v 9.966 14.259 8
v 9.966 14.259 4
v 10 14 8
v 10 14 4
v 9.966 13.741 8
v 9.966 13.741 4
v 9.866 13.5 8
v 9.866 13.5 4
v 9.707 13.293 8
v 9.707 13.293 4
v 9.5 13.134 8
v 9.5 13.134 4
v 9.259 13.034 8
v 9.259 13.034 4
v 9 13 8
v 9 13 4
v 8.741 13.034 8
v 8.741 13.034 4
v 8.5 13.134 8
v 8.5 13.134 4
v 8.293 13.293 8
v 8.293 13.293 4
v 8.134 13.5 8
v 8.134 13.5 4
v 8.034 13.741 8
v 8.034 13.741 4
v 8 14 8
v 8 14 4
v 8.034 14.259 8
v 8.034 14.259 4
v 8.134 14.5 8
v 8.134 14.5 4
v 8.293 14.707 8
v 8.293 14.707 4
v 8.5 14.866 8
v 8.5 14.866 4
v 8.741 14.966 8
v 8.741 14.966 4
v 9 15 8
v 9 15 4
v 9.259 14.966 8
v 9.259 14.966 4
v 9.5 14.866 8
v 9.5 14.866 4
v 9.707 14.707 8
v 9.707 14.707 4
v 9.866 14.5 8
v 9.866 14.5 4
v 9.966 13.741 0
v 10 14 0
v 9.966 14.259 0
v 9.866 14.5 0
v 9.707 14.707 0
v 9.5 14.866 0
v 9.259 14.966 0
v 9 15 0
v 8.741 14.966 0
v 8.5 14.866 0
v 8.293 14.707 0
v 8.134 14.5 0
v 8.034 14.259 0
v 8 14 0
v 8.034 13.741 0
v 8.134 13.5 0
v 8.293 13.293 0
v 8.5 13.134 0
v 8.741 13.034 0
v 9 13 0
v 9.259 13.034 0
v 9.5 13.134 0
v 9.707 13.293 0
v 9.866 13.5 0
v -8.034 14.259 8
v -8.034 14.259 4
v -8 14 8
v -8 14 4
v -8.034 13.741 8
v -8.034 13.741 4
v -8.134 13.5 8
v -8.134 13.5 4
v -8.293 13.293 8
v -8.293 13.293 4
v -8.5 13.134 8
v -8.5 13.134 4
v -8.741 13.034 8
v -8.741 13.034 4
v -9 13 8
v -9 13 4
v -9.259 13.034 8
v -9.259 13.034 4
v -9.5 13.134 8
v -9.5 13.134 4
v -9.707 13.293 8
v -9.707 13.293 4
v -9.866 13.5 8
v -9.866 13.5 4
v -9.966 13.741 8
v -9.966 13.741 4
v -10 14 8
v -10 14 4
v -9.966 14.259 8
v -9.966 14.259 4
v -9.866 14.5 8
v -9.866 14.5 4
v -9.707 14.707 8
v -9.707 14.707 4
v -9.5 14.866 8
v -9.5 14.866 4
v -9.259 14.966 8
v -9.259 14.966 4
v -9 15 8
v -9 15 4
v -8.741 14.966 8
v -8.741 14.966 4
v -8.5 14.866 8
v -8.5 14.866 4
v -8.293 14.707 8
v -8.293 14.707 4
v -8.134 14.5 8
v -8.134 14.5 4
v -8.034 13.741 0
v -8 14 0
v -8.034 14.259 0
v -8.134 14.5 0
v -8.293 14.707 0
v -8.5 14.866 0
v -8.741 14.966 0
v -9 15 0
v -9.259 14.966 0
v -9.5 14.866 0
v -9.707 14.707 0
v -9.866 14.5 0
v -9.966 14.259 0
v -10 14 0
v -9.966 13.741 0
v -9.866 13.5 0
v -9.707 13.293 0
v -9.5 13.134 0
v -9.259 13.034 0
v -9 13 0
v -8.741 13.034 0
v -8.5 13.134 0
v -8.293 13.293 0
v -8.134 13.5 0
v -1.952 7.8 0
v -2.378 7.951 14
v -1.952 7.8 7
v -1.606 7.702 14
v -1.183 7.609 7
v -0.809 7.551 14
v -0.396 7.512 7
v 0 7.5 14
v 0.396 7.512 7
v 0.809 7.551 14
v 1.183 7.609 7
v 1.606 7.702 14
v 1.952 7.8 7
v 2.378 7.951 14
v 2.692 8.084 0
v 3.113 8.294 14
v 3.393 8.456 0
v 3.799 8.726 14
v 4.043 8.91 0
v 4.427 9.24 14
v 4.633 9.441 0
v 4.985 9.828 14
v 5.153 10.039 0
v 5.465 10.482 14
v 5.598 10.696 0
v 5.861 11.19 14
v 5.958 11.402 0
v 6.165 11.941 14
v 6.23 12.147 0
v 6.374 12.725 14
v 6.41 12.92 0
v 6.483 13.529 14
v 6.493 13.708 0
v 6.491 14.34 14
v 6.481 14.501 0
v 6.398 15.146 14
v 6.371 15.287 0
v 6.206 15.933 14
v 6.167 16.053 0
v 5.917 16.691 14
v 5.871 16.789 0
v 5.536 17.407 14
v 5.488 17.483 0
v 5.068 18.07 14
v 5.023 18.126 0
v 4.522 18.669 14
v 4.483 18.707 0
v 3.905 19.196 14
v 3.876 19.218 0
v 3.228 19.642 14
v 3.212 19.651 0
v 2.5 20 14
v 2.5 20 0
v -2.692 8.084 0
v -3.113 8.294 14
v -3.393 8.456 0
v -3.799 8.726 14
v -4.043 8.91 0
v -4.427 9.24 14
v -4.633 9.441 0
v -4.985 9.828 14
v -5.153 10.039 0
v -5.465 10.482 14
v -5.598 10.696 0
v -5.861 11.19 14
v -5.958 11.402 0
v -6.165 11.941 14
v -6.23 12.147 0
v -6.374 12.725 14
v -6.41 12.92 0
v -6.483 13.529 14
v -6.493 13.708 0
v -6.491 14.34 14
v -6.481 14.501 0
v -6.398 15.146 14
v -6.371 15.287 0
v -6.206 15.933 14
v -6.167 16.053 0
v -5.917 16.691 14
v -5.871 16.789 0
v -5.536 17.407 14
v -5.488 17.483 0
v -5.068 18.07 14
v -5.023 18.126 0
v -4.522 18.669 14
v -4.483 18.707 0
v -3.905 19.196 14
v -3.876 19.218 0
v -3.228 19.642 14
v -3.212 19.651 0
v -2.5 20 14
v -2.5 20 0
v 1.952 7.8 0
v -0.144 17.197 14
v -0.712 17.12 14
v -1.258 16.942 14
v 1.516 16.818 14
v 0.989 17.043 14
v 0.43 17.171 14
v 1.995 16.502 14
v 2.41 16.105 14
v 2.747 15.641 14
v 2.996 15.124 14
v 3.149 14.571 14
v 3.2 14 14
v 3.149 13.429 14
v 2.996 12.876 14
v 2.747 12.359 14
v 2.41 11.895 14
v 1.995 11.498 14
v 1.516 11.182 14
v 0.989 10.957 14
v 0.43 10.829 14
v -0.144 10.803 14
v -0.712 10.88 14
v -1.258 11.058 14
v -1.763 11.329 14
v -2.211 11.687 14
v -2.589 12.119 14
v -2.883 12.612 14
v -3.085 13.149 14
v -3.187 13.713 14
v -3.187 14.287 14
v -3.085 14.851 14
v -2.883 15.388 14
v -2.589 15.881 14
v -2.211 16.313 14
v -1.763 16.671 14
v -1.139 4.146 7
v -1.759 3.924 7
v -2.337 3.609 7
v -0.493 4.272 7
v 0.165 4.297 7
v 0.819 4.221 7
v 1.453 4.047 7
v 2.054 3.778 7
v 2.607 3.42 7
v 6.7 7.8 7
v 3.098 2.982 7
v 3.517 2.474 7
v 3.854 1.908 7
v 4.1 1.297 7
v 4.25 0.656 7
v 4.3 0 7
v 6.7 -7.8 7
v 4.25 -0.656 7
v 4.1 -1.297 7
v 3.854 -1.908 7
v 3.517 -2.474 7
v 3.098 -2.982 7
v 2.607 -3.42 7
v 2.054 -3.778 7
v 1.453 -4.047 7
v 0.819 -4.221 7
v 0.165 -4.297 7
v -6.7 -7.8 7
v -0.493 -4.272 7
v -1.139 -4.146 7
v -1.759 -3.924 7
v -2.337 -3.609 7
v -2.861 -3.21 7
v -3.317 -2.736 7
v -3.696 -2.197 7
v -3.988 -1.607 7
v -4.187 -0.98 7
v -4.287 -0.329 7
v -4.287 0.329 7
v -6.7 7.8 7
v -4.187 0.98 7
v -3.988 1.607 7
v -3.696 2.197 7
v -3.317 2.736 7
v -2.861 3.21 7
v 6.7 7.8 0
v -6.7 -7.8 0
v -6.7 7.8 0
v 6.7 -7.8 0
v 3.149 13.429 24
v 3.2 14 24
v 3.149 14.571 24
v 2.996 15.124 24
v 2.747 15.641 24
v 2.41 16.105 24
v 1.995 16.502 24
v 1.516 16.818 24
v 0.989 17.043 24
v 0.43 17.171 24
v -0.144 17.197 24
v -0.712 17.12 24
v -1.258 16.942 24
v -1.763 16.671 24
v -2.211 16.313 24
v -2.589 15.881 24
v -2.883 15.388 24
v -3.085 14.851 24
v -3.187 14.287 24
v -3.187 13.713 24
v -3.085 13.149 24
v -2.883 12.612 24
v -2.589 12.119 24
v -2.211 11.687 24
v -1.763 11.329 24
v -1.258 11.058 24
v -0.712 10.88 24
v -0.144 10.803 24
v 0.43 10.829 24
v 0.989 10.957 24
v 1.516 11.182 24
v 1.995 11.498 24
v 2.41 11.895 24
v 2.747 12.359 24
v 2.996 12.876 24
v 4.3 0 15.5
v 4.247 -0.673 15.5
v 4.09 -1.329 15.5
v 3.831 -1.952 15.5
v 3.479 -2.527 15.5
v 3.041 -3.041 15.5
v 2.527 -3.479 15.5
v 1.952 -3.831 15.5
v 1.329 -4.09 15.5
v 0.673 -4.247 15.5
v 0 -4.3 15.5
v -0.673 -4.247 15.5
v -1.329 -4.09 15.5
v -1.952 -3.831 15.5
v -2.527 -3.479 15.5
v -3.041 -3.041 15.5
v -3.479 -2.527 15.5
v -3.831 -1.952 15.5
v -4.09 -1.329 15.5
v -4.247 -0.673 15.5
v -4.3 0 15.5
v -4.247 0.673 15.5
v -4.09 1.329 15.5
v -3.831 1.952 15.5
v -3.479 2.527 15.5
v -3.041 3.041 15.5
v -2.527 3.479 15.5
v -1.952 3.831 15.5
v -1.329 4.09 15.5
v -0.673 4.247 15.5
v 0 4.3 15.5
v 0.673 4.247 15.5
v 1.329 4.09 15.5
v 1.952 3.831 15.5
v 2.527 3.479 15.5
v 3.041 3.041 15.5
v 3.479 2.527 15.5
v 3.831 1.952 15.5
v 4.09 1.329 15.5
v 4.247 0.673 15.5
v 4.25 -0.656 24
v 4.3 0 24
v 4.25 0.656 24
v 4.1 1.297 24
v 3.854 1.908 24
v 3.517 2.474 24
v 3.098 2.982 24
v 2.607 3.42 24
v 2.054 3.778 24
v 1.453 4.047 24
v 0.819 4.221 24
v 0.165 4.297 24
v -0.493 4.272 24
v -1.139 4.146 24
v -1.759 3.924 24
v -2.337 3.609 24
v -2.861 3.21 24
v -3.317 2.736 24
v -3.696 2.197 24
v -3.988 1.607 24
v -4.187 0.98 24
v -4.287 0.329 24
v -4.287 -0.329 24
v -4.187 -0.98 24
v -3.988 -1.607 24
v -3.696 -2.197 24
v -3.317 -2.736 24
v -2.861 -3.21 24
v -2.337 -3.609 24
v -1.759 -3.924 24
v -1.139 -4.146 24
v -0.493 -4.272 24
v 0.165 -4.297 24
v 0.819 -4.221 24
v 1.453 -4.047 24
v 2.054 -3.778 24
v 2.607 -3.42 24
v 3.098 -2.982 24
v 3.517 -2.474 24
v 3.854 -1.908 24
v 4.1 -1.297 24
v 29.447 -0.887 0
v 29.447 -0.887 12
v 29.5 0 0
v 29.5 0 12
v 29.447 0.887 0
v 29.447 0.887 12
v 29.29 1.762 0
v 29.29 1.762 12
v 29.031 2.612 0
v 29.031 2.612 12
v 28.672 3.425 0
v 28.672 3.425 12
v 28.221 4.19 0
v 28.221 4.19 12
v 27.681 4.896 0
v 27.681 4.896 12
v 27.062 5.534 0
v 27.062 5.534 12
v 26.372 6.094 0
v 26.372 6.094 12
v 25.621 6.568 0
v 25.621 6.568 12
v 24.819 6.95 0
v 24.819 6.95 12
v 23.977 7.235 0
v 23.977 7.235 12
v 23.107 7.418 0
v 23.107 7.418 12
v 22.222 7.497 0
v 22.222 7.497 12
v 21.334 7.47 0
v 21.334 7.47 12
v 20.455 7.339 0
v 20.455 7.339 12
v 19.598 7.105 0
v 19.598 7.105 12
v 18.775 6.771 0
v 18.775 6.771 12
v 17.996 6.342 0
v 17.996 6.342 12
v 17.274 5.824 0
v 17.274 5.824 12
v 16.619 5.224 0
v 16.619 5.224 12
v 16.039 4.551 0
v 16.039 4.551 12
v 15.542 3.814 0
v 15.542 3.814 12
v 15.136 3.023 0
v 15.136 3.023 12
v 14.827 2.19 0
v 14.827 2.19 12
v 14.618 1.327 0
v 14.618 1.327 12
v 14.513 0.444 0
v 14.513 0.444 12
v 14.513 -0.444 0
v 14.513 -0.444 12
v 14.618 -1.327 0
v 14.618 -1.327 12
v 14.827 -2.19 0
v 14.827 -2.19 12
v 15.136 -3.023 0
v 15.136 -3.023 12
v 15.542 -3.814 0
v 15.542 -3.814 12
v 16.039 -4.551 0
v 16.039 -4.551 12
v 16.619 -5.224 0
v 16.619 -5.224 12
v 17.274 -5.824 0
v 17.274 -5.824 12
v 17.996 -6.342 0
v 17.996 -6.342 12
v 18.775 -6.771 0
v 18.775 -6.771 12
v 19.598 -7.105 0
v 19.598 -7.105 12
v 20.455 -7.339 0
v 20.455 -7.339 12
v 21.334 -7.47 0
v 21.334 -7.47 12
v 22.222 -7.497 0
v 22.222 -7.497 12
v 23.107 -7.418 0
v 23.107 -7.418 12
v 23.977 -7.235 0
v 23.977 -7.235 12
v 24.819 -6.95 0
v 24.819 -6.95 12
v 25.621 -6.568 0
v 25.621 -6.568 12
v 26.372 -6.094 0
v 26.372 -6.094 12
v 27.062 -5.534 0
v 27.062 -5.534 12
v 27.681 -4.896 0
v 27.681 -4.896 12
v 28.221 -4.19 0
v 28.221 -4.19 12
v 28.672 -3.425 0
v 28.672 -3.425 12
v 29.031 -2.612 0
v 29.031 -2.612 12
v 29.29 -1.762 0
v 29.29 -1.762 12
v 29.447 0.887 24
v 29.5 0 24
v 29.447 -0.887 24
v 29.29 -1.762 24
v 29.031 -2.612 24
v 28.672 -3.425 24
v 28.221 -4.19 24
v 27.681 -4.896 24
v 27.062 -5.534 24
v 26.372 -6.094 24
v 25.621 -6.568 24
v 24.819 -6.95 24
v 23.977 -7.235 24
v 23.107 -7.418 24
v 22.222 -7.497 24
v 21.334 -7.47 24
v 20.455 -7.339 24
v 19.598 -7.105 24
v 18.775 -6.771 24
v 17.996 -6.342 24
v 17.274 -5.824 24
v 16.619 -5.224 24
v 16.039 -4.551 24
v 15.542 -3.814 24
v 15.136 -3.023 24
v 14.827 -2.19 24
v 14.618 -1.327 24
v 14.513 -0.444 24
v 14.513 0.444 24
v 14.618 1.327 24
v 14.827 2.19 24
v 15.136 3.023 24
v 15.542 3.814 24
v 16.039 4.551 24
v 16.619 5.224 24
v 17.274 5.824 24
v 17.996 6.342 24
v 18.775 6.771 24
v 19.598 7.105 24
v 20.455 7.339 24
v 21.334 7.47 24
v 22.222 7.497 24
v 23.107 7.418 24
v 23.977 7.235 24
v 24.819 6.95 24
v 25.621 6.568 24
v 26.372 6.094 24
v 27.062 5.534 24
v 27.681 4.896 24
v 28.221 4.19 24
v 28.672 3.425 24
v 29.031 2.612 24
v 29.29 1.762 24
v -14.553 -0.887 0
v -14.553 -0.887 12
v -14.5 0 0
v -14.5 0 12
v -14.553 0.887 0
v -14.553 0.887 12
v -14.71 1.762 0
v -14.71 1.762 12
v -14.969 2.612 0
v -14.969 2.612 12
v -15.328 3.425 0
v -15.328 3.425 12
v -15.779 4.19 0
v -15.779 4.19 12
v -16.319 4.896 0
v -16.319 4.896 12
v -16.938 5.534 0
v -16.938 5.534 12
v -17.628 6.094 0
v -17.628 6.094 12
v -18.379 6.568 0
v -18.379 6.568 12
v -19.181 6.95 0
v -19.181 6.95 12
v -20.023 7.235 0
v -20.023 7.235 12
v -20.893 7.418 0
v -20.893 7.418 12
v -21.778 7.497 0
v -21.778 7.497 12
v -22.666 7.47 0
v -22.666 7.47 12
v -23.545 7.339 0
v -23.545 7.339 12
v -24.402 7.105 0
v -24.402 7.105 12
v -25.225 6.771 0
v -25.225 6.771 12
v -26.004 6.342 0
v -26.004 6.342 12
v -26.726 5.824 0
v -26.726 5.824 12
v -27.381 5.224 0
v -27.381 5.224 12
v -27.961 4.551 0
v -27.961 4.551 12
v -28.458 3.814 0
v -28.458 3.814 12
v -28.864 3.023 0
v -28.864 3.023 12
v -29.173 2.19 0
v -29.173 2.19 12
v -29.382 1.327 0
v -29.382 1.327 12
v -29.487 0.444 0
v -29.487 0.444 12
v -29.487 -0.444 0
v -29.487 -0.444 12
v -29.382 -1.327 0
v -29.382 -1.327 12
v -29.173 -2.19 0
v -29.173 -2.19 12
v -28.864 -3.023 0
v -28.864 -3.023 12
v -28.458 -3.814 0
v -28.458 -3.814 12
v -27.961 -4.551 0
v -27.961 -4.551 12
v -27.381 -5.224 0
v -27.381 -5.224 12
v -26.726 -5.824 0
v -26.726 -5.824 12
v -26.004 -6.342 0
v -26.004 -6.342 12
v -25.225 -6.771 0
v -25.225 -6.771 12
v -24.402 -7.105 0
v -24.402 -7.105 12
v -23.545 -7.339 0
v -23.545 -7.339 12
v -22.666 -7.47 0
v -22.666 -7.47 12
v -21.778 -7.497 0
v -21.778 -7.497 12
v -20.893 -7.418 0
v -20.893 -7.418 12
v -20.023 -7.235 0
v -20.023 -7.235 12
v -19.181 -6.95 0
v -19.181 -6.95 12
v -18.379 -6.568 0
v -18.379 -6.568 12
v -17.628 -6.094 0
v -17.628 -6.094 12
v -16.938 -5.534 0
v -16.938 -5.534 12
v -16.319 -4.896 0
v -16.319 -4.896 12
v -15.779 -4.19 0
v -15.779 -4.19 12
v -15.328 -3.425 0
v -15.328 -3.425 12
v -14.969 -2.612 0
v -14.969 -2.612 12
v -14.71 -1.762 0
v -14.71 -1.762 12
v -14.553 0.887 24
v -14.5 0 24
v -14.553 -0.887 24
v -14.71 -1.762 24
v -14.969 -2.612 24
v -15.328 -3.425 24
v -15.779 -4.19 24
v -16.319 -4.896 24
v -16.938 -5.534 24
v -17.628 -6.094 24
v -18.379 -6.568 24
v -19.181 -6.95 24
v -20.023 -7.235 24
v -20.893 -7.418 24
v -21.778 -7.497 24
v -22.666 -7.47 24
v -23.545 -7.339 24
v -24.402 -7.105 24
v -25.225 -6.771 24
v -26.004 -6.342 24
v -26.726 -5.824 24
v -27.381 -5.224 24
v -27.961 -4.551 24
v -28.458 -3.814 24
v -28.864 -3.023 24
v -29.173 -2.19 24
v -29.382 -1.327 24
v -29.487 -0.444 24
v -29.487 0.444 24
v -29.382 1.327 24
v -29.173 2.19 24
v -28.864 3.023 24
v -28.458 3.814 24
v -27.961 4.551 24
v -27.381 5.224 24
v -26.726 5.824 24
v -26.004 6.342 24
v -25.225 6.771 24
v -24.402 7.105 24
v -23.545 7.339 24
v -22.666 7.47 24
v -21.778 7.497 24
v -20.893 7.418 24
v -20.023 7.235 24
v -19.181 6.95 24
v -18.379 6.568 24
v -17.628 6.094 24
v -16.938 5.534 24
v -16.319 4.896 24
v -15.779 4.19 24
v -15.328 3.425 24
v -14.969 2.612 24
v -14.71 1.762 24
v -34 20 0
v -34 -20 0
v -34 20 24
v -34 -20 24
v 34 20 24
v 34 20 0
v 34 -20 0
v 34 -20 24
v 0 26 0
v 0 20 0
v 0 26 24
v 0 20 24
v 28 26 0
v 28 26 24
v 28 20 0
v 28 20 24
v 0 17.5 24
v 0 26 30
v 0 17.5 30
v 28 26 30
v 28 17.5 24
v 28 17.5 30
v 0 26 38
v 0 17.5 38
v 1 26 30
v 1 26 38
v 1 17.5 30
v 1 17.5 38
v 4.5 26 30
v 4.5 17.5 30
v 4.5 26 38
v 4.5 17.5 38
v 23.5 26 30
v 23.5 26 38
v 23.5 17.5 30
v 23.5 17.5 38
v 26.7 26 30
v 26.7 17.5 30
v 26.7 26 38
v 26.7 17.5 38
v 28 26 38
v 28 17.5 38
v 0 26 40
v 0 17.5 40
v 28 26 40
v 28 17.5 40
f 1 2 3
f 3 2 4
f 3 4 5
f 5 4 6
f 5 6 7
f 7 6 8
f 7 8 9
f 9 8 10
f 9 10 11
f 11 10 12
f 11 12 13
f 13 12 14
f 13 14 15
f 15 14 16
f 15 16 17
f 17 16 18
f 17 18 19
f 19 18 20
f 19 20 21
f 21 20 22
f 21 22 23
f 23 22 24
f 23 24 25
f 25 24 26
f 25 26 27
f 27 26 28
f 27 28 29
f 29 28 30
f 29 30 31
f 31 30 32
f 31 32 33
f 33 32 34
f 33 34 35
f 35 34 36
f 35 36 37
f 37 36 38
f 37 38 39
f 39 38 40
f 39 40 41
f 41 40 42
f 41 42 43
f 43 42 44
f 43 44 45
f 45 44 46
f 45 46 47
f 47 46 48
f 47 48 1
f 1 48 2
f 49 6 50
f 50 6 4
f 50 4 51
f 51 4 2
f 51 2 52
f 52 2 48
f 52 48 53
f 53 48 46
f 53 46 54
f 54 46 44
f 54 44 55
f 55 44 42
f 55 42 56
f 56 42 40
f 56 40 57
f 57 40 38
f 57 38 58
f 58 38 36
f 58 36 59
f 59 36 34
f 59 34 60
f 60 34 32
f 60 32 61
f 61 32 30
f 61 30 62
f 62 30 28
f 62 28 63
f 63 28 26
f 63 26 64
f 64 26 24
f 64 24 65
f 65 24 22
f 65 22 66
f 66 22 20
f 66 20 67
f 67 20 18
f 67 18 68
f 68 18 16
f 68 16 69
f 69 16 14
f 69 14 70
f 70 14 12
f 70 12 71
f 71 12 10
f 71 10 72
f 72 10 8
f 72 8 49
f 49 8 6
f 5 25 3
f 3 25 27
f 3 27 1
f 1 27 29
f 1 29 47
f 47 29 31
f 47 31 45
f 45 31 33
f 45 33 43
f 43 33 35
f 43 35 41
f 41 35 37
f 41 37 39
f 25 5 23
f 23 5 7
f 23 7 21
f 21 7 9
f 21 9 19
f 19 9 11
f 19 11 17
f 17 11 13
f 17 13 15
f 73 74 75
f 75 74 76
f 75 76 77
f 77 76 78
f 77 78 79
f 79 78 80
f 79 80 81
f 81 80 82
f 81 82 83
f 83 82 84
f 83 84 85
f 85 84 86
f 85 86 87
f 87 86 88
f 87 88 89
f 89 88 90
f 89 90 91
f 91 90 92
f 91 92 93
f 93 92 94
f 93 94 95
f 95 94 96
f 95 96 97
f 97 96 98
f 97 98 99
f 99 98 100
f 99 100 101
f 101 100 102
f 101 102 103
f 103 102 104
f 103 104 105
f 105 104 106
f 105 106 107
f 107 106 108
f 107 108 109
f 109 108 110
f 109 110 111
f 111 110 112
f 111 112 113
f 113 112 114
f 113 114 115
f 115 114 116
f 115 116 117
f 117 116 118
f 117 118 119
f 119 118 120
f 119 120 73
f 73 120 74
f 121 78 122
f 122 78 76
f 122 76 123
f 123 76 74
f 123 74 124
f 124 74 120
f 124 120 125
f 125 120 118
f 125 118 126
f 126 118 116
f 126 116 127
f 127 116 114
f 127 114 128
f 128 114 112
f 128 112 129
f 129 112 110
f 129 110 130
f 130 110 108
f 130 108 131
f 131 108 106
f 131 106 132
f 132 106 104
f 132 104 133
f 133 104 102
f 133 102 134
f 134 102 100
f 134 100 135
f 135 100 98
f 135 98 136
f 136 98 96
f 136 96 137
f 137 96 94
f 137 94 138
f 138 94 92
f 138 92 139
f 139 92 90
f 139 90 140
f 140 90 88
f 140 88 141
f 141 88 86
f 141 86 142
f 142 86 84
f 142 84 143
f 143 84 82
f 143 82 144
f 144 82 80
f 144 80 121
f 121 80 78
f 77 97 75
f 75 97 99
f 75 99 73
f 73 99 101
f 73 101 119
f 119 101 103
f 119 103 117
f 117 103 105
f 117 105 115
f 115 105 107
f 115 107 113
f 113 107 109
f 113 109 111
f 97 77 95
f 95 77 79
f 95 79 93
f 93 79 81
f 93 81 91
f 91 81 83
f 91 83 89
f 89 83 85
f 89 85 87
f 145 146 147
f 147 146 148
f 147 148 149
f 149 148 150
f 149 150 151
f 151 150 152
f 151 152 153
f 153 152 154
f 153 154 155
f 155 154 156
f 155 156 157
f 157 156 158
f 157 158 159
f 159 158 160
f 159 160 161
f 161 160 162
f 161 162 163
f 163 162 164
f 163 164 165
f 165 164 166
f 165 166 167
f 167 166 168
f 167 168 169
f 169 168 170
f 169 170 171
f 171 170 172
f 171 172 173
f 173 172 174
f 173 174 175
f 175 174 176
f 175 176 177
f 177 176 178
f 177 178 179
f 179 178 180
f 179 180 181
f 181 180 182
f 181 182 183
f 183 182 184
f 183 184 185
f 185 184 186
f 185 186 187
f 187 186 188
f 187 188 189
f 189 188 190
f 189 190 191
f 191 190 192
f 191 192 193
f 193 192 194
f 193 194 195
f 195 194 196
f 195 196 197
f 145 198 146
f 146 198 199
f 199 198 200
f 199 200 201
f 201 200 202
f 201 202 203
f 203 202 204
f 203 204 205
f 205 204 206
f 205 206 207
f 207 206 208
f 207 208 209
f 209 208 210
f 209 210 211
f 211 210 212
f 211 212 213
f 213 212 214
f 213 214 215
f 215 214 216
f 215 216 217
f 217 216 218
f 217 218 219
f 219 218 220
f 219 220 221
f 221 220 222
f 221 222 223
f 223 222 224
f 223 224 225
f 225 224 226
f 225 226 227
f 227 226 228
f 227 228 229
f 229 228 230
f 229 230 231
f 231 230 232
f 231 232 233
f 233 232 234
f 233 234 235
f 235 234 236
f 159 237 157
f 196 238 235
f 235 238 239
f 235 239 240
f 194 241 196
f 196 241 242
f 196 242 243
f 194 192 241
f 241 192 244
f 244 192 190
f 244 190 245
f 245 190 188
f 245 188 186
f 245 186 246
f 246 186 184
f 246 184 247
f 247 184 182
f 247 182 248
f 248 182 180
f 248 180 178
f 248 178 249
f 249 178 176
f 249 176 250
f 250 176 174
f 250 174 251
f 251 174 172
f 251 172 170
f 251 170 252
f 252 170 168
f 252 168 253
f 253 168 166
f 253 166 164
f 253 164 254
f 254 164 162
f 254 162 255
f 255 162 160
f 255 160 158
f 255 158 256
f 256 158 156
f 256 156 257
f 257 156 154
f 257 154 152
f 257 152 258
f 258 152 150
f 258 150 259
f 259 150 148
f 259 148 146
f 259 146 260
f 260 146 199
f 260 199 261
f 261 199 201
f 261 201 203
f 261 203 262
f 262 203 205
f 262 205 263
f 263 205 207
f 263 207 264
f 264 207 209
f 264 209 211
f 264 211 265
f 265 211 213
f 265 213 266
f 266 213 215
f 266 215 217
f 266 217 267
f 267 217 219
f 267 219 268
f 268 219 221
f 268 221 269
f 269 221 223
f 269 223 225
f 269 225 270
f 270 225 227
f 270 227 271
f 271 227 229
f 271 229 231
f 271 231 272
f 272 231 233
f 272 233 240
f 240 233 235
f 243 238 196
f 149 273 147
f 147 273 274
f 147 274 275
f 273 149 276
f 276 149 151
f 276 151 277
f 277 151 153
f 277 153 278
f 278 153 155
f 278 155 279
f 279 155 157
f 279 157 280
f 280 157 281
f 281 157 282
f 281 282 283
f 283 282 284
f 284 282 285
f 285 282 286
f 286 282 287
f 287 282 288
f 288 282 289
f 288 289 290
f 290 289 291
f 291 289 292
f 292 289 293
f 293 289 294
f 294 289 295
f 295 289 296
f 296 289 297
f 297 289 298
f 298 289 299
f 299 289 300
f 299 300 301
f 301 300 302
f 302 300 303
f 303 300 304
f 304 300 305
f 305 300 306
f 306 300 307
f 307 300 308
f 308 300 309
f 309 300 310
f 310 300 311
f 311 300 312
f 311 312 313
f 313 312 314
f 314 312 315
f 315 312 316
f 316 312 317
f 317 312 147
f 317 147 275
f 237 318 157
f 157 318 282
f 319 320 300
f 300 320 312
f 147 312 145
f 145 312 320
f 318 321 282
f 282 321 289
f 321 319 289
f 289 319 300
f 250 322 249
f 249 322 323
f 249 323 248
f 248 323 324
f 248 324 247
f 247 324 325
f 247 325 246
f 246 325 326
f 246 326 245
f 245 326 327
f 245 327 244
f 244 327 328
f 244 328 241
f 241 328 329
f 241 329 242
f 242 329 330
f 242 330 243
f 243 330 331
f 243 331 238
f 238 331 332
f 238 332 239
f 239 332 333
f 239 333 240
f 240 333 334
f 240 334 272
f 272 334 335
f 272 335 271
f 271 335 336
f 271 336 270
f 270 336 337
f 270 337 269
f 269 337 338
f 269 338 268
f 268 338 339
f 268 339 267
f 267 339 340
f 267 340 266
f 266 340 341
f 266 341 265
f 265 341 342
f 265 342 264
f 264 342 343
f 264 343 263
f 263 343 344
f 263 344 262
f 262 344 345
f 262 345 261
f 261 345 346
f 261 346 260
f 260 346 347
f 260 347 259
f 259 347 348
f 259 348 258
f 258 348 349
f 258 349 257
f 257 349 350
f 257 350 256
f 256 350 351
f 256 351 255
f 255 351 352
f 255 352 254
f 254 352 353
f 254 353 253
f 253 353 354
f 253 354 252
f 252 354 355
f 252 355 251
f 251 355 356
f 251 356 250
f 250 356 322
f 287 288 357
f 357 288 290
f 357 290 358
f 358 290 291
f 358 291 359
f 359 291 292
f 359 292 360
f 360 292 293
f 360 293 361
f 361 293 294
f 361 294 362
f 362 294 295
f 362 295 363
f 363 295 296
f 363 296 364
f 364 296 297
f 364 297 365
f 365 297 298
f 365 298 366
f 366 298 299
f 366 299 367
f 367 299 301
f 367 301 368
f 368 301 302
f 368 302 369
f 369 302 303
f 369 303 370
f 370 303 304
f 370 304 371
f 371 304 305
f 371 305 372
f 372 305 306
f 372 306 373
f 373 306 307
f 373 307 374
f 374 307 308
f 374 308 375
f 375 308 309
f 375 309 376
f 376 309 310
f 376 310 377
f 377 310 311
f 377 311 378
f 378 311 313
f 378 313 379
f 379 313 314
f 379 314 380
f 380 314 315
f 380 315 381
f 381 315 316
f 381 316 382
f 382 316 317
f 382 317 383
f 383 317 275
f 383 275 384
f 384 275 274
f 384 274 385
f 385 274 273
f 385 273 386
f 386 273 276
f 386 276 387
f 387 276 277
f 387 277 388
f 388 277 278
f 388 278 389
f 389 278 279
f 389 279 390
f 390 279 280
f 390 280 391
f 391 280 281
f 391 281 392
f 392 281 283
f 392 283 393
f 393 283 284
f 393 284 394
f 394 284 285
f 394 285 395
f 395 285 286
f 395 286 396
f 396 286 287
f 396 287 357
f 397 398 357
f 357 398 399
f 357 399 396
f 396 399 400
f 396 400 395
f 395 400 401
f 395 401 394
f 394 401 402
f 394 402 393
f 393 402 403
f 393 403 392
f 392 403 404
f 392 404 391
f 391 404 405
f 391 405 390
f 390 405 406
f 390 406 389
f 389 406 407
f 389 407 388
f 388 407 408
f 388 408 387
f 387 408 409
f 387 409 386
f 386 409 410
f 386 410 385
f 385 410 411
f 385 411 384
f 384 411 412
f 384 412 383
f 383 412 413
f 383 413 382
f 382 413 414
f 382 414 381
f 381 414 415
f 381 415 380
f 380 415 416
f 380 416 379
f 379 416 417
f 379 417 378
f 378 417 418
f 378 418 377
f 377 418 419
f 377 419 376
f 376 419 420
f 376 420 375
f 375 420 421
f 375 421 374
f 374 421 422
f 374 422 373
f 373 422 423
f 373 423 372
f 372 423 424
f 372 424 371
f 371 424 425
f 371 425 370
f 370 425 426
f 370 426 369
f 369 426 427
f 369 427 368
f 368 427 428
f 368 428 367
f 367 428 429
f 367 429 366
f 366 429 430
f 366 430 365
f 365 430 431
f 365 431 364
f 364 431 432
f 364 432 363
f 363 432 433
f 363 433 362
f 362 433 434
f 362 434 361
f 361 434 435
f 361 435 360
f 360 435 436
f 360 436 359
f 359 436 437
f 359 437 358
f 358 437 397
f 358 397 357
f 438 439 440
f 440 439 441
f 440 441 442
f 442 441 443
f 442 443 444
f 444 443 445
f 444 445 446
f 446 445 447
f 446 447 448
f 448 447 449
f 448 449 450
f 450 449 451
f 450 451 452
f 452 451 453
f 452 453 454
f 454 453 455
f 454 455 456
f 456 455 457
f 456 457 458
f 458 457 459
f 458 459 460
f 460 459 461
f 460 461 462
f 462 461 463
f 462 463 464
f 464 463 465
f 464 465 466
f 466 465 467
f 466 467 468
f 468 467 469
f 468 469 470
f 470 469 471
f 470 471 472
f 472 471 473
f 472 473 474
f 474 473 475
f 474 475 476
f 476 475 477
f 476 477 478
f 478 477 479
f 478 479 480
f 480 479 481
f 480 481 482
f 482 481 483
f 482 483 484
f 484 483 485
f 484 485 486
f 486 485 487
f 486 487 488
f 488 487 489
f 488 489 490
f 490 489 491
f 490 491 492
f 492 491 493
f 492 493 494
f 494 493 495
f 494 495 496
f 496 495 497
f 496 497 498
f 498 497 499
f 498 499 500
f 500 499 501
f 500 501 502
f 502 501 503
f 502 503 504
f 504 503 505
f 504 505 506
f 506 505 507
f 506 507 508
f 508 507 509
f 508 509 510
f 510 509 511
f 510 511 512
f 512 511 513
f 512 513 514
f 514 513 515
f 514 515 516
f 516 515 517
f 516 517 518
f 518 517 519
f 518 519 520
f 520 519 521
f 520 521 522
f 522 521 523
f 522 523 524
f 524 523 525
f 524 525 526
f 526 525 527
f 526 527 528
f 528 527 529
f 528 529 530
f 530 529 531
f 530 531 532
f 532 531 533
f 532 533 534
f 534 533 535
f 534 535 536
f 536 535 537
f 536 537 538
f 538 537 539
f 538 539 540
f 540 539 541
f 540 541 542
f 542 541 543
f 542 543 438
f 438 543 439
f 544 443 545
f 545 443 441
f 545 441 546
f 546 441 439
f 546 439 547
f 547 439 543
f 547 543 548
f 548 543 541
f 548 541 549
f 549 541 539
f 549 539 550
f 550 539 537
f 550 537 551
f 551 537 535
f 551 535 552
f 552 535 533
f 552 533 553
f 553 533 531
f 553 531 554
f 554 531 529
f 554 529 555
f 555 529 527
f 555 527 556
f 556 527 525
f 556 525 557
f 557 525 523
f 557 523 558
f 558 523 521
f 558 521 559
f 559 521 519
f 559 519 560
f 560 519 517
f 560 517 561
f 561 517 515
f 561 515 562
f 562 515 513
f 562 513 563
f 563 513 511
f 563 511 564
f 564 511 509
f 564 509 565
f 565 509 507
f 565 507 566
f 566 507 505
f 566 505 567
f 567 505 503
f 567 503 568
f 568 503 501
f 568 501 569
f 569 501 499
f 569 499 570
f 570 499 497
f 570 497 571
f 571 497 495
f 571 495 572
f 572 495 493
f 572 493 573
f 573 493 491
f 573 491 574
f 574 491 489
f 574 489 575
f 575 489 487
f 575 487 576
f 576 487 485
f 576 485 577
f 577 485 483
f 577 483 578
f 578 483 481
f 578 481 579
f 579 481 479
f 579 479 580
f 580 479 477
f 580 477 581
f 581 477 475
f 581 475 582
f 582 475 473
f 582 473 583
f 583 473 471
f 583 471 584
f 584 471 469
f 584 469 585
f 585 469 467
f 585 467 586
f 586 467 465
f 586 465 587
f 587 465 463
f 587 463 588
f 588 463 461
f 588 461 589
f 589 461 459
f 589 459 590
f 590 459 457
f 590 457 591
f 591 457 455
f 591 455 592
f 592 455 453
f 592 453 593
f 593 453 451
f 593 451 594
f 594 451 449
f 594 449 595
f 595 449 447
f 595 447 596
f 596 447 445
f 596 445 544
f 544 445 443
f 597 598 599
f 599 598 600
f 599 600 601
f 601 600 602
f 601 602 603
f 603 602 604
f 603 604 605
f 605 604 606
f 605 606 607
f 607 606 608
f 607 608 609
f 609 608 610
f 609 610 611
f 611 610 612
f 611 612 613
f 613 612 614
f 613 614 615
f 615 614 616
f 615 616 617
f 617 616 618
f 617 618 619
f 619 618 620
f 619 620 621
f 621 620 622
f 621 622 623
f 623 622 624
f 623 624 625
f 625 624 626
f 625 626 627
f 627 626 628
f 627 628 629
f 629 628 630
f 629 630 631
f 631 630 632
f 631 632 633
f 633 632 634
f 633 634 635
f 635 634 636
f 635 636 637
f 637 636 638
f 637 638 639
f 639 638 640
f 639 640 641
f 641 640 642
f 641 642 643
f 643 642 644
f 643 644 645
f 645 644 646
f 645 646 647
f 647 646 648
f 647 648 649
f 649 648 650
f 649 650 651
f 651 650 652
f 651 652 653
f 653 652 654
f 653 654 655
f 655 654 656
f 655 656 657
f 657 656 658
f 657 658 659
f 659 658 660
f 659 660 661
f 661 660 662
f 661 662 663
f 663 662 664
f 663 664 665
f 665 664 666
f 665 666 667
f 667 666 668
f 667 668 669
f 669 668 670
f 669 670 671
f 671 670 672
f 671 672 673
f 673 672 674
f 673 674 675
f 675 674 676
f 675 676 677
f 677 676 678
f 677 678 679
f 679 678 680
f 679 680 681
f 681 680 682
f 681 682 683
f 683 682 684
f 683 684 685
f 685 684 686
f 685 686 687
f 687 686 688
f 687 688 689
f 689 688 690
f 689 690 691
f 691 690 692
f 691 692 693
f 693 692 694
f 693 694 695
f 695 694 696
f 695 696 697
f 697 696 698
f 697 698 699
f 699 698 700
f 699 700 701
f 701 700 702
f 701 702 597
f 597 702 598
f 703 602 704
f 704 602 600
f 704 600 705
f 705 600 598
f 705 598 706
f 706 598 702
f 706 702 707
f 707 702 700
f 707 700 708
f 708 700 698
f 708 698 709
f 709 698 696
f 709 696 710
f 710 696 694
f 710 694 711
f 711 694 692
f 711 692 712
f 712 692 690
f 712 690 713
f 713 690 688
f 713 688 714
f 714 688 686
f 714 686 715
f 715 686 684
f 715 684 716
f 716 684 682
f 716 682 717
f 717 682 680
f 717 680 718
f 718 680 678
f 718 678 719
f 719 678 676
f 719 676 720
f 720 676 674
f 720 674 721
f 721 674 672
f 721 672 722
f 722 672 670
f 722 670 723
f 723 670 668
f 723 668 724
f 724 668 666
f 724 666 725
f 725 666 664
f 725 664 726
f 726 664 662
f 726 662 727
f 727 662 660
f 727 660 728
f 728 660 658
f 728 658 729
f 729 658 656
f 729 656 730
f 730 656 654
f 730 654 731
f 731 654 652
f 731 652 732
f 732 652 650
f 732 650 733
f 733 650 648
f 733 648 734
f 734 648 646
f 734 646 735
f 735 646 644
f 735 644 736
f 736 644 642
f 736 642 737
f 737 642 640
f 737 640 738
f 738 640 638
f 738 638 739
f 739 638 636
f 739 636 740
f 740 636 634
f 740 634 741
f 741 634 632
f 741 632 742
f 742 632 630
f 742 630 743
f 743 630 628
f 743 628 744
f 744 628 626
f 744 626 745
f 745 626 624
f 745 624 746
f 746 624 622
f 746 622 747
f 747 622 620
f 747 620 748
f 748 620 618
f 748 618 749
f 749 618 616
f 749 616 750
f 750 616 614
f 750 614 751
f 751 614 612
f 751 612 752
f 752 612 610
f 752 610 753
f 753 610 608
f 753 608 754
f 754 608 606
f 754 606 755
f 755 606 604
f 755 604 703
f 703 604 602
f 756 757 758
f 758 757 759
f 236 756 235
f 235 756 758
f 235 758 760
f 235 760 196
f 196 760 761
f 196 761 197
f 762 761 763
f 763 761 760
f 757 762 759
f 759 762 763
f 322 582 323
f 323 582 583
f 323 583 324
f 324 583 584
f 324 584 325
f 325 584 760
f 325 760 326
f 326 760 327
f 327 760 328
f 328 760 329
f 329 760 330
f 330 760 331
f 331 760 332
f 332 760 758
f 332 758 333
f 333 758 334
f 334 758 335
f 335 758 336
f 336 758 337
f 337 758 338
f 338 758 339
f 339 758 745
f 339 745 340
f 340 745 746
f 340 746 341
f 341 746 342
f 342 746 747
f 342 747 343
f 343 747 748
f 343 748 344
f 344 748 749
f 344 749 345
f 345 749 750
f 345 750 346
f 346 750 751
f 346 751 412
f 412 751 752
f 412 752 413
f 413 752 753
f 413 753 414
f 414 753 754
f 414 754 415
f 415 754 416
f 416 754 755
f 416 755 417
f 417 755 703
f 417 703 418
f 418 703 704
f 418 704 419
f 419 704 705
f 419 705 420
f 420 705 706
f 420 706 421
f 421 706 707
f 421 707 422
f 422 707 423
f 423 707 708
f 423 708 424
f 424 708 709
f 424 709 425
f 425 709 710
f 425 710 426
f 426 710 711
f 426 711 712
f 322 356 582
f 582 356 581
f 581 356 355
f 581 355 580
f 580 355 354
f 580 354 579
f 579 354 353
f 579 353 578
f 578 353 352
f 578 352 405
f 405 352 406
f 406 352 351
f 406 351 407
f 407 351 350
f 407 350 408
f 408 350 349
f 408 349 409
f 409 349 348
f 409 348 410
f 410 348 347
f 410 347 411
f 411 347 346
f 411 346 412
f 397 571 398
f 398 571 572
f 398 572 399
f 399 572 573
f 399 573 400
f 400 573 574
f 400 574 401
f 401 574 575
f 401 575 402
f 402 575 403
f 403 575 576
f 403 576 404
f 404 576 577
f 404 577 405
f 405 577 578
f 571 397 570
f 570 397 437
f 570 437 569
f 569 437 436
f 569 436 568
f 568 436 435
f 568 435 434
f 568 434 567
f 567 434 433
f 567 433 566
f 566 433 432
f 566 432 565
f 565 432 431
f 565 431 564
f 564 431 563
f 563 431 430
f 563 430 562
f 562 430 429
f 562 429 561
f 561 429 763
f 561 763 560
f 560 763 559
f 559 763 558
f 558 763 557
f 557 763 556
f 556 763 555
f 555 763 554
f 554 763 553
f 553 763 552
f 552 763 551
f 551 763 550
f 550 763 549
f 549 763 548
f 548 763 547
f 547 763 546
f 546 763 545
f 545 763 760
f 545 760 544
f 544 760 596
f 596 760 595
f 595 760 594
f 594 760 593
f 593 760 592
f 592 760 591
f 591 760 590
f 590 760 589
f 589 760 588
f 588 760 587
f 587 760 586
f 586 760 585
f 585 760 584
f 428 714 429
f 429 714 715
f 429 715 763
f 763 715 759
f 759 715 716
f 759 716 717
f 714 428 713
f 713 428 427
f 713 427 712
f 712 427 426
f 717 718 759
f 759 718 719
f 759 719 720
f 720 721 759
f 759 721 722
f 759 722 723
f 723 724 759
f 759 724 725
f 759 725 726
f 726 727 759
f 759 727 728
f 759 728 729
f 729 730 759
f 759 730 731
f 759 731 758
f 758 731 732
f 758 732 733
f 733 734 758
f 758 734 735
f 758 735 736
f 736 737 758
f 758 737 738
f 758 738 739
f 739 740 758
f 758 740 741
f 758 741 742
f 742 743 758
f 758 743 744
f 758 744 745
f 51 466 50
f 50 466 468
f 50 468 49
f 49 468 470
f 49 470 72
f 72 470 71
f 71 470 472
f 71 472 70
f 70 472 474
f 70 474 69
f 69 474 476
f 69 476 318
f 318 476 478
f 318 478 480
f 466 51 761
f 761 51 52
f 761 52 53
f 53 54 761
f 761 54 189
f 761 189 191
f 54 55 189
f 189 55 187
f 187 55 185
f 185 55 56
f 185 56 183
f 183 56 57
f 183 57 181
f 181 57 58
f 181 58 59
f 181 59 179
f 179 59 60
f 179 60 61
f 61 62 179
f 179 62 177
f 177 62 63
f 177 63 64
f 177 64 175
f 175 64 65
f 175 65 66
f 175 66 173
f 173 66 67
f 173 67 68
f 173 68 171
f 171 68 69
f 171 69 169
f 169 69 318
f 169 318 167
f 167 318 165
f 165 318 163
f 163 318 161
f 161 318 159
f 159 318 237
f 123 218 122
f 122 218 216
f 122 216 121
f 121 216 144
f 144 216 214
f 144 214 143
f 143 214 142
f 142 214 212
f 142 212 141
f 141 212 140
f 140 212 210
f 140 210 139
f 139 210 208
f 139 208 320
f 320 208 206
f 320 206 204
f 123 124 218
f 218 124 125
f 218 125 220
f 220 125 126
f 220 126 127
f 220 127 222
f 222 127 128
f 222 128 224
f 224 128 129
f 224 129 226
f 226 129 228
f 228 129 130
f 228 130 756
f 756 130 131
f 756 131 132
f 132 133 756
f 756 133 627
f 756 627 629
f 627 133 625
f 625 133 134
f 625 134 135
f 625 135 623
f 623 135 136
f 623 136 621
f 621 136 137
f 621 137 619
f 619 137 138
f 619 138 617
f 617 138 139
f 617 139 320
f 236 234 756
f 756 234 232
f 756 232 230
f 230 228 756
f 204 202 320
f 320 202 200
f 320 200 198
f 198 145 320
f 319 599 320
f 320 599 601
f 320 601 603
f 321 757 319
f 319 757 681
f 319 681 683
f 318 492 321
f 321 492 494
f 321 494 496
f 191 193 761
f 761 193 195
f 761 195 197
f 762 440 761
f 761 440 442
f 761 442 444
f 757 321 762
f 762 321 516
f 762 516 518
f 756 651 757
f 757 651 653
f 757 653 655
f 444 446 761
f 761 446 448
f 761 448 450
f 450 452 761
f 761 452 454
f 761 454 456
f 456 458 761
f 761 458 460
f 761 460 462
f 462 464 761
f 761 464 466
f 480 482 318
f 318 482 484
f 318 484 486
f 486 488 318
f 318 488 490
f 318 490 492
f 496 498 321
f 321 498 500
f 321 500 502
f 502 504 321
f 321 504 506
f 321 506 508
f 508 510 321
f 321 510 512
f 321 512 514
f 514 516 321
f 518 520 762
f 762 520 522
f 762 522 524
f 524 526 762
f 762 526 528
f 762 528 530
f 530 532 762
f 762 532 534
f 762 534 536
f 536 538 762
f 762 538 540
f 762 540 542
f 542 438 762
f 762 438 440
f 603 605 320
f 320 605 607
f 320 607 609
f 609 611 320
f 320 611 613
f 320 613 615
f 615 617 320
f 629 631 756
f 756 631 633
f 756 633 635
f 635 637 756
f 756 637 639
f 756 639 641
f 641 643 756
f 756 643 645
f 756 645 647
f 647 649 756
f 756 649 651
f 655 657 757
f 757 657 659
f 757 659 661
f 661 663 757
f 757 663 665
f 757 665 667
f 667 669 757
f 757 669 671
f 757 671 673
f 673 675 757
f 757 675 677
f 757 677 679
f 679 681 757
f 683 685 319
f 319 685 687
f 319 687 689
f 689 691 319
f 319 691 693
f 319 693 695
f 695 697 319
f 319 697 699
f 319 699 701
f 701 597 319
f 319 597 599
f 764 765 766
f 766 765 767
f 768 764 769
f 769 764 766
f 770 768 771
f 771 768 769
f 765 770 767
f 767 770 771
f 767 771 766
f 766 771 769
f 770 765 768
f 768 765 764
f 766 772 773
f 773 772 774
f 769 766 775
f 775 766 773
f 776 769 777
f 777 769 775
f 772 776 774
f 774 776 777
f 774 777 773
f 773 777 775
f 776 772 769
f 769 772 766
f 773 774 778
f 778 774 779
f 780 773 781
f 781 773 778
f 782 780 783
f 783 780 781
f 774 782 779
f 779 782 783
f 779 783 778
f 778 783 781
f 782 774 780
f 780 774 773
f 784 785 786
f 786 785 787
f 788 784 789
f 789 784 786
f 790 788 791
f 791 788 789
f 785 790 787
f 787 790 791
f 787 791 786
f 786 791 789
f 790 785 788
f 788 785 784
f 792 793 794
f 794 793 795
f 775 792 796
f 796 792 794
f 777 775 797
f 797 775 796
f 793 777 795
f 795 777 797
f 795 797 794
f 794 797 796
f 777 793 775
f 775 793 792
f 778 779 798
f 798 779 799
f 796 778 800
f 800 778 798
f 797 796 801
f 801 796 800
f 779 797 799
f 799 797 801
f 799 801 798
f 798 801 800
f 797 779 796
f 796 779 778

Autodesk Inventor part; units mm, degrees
sketch "Skizze1" plane through (0, 0, 0) normal (0, 0, 1) x (1, 0, 0)
  line L0 (-34, -20) -> (34, -20)
  line L1 (34, -20) -> (34, 20)
  line L2 (34, 20) -> (-34, 20)
  line L3 (-34, 20) -> (-34, -20)
extrude "Extrusion1" add sketch "Skizze1" along normal blind 24
sketch "Skizze2" plane through (0, 0, 0) normal (0, 0, 1) x (1, 0, 0)
  line L0 (0, 20) -> (28, 20)
  line L1 (28, 20) -> (28, 26)
  line L2 (28, 26) -> (0, 26)
  line L3 (0, 26) -> (0, 20)
extrude "Extrusion2" add sketch "Skizze2" along normal blind 24 separate body
ref_plane "Arbeitsebene1" through (0, 0, 24) normal (0, 0, 1) x (1, 0, 0)
sketch "Skizze3" plane through (0, 0, 24) normal (0, 0, 1) x (1, 0, 0)
  line L0 (0, 17.5) -> (28, 17.5)
  line L1 (28, 17.5) -> (28, 26)
  line L2 (28, 26) -> (0, 26)
  line L3 (0, 26) -> (0, 17.5)
extrude "Extrusion3" add sketch "Skizze3" along normal blind 6 separate body
ref_plane "Arbeitsebene2" through (0, 0, 30) normal (0, 0, 1) x (1, 0, 0)
sketch "Skizze4" plane through (0, 0, 30) normal (0, 0, 1) x (1, 0, 0)
  line L0 (0, 17.5) -> (1, 17.5)
  line L1 (1, 17.5) -> (1, 26)
  line L2 (1, 26) -> (0, 26)
  line L3 (0, 26) -> (0, 17.5)
extrude "Extrusion4" add sketch "Skizze4" along normal blind 8 separate body
sketch "Skizze5" plane through (0, 0, 30) normal (0, 0, 1) x (1, 0, 0)
  line L0 (4.5, 17.5) -> (23.5, 17.5)
  line L1 (23.5, 17.5) -> (23.5, 26)
  line L2 (23.5, 26) -> (4.5, 26)
  line L3 (4.5, 26) -> (4.5, 17.5)
extrude "Extrusion5" add sketch "Skizze5" along normal blind 8 separate body
sketch "Skizze6" plane through (0, 0, 30) normal (0, 0, 1) x (1, 0, 0)
  line L0 (26.7, 17.5) -> (28, 17.5)
  line L1 (28, 17.5) -> (28, 26)
  line L2 (28, 26) -> (26.7, 26)
  line L3 (26.7, 26) -> (26.7, 17.5)
extrude "Extrusion6" add sketch "Skizze6" along normal blind 8 separate body
ref_plane "Arbeitsebene3" through (0, 0, 38) normal (0, 0, 1) x (1, 0, 0)
sketch "Skizze7" plane through (0, 0, 38) normal (0, 0, 1) x (1, 0, 0)
  line L0 (0, 17.5) -> (28, 17.5)
  line L1 (28, 17.5) -> (28, 26)
  line L2 (28, 26) -> (0, 26)
  line L3 (0, 26) -> (0, 17.5)
extrude "Extrusion7" add sketch "Skizze7" along normal blind 2 separate body
sketch "Skizze8" plane through (0, 0, 24) normal (0, 0, 1) x (1, 0, 0)
  circle A0 centre (-22, 0) radius 7.5
extrude "Extrusion8" cut sketch "Skizze8" against normal blind 24.2 bodies 1
sketch "Skizze9" plane through (0, 0, 24) normal (0, 0, 1) x (1, 0, 0)
  circle A0 centre (22, 0) radius 7.5
extrude "Extrusion9" cut sketch "Skizze9" against normal blind 24.2 bodies 1
sketch "Skizze10" plane through (0, 0, 24) normal (0, 0, 1) x (1, 0, 0)
  circle A0 centre (0, 0) radius 4.3
extrude "Extrusion10" cut sketch "Skizze10" against normal blind 24.2 bodies 1
sketch "Skizze11" plane through (0, 0, 24) normal (0, 0, 1) x (1, 0, 0)
  circle A0 centre (0, 14) radius 3.2
extrude "Extrusion11" cut sketch "Skizze11" against normal blind 24.2 bodies 1
sketch "Skizze12" plane through (0, 0, 0) normal (0, 0, 1) x (1, 0, 0)
  line L0 (-6.7, -7.8) -> (6.7, -7.8)
  line L1 (6.7, -7.8) -> (6.7, 7.8)
  line L2 (6.7, 7.8) -> (-6.7, 7.8)
  line L3 (-6.7, 7.8) -> (-6.7, -7.8)
extrude "Extrusion12" cut sketch "Skizze12" along normal blind 7 bodies 1
sketch "Skizze13" plane through (0, 0, 0) normal (0, 0, 1) x (1, 0, 0)
  circle A0 centre (0, 14) radius 6.5
extrude "Extrusion13" cut sketch "Skizze13" along normal blind 14 bodies 1
sketch "Skizze14" plane through (0, 0, 0) normal (0, 0, 1) x (1, 0, 0)
  circle A0 centre (-9, 14) radius 1
extrude "Extrusion14" cut sketch "Skizze14" along normal blind 8 bodies 1
sketch "Skizze15" plane through (0, 0, 0) normal (0, 0, 1) x (1, 0, 0)
  circle A0 centre (9, 14) radius 1
extrude "Extrusion15" cut sketch "Skizze15" along normal blind 8 bodies 1
properties part number "Taster_Schlitten_M8"
